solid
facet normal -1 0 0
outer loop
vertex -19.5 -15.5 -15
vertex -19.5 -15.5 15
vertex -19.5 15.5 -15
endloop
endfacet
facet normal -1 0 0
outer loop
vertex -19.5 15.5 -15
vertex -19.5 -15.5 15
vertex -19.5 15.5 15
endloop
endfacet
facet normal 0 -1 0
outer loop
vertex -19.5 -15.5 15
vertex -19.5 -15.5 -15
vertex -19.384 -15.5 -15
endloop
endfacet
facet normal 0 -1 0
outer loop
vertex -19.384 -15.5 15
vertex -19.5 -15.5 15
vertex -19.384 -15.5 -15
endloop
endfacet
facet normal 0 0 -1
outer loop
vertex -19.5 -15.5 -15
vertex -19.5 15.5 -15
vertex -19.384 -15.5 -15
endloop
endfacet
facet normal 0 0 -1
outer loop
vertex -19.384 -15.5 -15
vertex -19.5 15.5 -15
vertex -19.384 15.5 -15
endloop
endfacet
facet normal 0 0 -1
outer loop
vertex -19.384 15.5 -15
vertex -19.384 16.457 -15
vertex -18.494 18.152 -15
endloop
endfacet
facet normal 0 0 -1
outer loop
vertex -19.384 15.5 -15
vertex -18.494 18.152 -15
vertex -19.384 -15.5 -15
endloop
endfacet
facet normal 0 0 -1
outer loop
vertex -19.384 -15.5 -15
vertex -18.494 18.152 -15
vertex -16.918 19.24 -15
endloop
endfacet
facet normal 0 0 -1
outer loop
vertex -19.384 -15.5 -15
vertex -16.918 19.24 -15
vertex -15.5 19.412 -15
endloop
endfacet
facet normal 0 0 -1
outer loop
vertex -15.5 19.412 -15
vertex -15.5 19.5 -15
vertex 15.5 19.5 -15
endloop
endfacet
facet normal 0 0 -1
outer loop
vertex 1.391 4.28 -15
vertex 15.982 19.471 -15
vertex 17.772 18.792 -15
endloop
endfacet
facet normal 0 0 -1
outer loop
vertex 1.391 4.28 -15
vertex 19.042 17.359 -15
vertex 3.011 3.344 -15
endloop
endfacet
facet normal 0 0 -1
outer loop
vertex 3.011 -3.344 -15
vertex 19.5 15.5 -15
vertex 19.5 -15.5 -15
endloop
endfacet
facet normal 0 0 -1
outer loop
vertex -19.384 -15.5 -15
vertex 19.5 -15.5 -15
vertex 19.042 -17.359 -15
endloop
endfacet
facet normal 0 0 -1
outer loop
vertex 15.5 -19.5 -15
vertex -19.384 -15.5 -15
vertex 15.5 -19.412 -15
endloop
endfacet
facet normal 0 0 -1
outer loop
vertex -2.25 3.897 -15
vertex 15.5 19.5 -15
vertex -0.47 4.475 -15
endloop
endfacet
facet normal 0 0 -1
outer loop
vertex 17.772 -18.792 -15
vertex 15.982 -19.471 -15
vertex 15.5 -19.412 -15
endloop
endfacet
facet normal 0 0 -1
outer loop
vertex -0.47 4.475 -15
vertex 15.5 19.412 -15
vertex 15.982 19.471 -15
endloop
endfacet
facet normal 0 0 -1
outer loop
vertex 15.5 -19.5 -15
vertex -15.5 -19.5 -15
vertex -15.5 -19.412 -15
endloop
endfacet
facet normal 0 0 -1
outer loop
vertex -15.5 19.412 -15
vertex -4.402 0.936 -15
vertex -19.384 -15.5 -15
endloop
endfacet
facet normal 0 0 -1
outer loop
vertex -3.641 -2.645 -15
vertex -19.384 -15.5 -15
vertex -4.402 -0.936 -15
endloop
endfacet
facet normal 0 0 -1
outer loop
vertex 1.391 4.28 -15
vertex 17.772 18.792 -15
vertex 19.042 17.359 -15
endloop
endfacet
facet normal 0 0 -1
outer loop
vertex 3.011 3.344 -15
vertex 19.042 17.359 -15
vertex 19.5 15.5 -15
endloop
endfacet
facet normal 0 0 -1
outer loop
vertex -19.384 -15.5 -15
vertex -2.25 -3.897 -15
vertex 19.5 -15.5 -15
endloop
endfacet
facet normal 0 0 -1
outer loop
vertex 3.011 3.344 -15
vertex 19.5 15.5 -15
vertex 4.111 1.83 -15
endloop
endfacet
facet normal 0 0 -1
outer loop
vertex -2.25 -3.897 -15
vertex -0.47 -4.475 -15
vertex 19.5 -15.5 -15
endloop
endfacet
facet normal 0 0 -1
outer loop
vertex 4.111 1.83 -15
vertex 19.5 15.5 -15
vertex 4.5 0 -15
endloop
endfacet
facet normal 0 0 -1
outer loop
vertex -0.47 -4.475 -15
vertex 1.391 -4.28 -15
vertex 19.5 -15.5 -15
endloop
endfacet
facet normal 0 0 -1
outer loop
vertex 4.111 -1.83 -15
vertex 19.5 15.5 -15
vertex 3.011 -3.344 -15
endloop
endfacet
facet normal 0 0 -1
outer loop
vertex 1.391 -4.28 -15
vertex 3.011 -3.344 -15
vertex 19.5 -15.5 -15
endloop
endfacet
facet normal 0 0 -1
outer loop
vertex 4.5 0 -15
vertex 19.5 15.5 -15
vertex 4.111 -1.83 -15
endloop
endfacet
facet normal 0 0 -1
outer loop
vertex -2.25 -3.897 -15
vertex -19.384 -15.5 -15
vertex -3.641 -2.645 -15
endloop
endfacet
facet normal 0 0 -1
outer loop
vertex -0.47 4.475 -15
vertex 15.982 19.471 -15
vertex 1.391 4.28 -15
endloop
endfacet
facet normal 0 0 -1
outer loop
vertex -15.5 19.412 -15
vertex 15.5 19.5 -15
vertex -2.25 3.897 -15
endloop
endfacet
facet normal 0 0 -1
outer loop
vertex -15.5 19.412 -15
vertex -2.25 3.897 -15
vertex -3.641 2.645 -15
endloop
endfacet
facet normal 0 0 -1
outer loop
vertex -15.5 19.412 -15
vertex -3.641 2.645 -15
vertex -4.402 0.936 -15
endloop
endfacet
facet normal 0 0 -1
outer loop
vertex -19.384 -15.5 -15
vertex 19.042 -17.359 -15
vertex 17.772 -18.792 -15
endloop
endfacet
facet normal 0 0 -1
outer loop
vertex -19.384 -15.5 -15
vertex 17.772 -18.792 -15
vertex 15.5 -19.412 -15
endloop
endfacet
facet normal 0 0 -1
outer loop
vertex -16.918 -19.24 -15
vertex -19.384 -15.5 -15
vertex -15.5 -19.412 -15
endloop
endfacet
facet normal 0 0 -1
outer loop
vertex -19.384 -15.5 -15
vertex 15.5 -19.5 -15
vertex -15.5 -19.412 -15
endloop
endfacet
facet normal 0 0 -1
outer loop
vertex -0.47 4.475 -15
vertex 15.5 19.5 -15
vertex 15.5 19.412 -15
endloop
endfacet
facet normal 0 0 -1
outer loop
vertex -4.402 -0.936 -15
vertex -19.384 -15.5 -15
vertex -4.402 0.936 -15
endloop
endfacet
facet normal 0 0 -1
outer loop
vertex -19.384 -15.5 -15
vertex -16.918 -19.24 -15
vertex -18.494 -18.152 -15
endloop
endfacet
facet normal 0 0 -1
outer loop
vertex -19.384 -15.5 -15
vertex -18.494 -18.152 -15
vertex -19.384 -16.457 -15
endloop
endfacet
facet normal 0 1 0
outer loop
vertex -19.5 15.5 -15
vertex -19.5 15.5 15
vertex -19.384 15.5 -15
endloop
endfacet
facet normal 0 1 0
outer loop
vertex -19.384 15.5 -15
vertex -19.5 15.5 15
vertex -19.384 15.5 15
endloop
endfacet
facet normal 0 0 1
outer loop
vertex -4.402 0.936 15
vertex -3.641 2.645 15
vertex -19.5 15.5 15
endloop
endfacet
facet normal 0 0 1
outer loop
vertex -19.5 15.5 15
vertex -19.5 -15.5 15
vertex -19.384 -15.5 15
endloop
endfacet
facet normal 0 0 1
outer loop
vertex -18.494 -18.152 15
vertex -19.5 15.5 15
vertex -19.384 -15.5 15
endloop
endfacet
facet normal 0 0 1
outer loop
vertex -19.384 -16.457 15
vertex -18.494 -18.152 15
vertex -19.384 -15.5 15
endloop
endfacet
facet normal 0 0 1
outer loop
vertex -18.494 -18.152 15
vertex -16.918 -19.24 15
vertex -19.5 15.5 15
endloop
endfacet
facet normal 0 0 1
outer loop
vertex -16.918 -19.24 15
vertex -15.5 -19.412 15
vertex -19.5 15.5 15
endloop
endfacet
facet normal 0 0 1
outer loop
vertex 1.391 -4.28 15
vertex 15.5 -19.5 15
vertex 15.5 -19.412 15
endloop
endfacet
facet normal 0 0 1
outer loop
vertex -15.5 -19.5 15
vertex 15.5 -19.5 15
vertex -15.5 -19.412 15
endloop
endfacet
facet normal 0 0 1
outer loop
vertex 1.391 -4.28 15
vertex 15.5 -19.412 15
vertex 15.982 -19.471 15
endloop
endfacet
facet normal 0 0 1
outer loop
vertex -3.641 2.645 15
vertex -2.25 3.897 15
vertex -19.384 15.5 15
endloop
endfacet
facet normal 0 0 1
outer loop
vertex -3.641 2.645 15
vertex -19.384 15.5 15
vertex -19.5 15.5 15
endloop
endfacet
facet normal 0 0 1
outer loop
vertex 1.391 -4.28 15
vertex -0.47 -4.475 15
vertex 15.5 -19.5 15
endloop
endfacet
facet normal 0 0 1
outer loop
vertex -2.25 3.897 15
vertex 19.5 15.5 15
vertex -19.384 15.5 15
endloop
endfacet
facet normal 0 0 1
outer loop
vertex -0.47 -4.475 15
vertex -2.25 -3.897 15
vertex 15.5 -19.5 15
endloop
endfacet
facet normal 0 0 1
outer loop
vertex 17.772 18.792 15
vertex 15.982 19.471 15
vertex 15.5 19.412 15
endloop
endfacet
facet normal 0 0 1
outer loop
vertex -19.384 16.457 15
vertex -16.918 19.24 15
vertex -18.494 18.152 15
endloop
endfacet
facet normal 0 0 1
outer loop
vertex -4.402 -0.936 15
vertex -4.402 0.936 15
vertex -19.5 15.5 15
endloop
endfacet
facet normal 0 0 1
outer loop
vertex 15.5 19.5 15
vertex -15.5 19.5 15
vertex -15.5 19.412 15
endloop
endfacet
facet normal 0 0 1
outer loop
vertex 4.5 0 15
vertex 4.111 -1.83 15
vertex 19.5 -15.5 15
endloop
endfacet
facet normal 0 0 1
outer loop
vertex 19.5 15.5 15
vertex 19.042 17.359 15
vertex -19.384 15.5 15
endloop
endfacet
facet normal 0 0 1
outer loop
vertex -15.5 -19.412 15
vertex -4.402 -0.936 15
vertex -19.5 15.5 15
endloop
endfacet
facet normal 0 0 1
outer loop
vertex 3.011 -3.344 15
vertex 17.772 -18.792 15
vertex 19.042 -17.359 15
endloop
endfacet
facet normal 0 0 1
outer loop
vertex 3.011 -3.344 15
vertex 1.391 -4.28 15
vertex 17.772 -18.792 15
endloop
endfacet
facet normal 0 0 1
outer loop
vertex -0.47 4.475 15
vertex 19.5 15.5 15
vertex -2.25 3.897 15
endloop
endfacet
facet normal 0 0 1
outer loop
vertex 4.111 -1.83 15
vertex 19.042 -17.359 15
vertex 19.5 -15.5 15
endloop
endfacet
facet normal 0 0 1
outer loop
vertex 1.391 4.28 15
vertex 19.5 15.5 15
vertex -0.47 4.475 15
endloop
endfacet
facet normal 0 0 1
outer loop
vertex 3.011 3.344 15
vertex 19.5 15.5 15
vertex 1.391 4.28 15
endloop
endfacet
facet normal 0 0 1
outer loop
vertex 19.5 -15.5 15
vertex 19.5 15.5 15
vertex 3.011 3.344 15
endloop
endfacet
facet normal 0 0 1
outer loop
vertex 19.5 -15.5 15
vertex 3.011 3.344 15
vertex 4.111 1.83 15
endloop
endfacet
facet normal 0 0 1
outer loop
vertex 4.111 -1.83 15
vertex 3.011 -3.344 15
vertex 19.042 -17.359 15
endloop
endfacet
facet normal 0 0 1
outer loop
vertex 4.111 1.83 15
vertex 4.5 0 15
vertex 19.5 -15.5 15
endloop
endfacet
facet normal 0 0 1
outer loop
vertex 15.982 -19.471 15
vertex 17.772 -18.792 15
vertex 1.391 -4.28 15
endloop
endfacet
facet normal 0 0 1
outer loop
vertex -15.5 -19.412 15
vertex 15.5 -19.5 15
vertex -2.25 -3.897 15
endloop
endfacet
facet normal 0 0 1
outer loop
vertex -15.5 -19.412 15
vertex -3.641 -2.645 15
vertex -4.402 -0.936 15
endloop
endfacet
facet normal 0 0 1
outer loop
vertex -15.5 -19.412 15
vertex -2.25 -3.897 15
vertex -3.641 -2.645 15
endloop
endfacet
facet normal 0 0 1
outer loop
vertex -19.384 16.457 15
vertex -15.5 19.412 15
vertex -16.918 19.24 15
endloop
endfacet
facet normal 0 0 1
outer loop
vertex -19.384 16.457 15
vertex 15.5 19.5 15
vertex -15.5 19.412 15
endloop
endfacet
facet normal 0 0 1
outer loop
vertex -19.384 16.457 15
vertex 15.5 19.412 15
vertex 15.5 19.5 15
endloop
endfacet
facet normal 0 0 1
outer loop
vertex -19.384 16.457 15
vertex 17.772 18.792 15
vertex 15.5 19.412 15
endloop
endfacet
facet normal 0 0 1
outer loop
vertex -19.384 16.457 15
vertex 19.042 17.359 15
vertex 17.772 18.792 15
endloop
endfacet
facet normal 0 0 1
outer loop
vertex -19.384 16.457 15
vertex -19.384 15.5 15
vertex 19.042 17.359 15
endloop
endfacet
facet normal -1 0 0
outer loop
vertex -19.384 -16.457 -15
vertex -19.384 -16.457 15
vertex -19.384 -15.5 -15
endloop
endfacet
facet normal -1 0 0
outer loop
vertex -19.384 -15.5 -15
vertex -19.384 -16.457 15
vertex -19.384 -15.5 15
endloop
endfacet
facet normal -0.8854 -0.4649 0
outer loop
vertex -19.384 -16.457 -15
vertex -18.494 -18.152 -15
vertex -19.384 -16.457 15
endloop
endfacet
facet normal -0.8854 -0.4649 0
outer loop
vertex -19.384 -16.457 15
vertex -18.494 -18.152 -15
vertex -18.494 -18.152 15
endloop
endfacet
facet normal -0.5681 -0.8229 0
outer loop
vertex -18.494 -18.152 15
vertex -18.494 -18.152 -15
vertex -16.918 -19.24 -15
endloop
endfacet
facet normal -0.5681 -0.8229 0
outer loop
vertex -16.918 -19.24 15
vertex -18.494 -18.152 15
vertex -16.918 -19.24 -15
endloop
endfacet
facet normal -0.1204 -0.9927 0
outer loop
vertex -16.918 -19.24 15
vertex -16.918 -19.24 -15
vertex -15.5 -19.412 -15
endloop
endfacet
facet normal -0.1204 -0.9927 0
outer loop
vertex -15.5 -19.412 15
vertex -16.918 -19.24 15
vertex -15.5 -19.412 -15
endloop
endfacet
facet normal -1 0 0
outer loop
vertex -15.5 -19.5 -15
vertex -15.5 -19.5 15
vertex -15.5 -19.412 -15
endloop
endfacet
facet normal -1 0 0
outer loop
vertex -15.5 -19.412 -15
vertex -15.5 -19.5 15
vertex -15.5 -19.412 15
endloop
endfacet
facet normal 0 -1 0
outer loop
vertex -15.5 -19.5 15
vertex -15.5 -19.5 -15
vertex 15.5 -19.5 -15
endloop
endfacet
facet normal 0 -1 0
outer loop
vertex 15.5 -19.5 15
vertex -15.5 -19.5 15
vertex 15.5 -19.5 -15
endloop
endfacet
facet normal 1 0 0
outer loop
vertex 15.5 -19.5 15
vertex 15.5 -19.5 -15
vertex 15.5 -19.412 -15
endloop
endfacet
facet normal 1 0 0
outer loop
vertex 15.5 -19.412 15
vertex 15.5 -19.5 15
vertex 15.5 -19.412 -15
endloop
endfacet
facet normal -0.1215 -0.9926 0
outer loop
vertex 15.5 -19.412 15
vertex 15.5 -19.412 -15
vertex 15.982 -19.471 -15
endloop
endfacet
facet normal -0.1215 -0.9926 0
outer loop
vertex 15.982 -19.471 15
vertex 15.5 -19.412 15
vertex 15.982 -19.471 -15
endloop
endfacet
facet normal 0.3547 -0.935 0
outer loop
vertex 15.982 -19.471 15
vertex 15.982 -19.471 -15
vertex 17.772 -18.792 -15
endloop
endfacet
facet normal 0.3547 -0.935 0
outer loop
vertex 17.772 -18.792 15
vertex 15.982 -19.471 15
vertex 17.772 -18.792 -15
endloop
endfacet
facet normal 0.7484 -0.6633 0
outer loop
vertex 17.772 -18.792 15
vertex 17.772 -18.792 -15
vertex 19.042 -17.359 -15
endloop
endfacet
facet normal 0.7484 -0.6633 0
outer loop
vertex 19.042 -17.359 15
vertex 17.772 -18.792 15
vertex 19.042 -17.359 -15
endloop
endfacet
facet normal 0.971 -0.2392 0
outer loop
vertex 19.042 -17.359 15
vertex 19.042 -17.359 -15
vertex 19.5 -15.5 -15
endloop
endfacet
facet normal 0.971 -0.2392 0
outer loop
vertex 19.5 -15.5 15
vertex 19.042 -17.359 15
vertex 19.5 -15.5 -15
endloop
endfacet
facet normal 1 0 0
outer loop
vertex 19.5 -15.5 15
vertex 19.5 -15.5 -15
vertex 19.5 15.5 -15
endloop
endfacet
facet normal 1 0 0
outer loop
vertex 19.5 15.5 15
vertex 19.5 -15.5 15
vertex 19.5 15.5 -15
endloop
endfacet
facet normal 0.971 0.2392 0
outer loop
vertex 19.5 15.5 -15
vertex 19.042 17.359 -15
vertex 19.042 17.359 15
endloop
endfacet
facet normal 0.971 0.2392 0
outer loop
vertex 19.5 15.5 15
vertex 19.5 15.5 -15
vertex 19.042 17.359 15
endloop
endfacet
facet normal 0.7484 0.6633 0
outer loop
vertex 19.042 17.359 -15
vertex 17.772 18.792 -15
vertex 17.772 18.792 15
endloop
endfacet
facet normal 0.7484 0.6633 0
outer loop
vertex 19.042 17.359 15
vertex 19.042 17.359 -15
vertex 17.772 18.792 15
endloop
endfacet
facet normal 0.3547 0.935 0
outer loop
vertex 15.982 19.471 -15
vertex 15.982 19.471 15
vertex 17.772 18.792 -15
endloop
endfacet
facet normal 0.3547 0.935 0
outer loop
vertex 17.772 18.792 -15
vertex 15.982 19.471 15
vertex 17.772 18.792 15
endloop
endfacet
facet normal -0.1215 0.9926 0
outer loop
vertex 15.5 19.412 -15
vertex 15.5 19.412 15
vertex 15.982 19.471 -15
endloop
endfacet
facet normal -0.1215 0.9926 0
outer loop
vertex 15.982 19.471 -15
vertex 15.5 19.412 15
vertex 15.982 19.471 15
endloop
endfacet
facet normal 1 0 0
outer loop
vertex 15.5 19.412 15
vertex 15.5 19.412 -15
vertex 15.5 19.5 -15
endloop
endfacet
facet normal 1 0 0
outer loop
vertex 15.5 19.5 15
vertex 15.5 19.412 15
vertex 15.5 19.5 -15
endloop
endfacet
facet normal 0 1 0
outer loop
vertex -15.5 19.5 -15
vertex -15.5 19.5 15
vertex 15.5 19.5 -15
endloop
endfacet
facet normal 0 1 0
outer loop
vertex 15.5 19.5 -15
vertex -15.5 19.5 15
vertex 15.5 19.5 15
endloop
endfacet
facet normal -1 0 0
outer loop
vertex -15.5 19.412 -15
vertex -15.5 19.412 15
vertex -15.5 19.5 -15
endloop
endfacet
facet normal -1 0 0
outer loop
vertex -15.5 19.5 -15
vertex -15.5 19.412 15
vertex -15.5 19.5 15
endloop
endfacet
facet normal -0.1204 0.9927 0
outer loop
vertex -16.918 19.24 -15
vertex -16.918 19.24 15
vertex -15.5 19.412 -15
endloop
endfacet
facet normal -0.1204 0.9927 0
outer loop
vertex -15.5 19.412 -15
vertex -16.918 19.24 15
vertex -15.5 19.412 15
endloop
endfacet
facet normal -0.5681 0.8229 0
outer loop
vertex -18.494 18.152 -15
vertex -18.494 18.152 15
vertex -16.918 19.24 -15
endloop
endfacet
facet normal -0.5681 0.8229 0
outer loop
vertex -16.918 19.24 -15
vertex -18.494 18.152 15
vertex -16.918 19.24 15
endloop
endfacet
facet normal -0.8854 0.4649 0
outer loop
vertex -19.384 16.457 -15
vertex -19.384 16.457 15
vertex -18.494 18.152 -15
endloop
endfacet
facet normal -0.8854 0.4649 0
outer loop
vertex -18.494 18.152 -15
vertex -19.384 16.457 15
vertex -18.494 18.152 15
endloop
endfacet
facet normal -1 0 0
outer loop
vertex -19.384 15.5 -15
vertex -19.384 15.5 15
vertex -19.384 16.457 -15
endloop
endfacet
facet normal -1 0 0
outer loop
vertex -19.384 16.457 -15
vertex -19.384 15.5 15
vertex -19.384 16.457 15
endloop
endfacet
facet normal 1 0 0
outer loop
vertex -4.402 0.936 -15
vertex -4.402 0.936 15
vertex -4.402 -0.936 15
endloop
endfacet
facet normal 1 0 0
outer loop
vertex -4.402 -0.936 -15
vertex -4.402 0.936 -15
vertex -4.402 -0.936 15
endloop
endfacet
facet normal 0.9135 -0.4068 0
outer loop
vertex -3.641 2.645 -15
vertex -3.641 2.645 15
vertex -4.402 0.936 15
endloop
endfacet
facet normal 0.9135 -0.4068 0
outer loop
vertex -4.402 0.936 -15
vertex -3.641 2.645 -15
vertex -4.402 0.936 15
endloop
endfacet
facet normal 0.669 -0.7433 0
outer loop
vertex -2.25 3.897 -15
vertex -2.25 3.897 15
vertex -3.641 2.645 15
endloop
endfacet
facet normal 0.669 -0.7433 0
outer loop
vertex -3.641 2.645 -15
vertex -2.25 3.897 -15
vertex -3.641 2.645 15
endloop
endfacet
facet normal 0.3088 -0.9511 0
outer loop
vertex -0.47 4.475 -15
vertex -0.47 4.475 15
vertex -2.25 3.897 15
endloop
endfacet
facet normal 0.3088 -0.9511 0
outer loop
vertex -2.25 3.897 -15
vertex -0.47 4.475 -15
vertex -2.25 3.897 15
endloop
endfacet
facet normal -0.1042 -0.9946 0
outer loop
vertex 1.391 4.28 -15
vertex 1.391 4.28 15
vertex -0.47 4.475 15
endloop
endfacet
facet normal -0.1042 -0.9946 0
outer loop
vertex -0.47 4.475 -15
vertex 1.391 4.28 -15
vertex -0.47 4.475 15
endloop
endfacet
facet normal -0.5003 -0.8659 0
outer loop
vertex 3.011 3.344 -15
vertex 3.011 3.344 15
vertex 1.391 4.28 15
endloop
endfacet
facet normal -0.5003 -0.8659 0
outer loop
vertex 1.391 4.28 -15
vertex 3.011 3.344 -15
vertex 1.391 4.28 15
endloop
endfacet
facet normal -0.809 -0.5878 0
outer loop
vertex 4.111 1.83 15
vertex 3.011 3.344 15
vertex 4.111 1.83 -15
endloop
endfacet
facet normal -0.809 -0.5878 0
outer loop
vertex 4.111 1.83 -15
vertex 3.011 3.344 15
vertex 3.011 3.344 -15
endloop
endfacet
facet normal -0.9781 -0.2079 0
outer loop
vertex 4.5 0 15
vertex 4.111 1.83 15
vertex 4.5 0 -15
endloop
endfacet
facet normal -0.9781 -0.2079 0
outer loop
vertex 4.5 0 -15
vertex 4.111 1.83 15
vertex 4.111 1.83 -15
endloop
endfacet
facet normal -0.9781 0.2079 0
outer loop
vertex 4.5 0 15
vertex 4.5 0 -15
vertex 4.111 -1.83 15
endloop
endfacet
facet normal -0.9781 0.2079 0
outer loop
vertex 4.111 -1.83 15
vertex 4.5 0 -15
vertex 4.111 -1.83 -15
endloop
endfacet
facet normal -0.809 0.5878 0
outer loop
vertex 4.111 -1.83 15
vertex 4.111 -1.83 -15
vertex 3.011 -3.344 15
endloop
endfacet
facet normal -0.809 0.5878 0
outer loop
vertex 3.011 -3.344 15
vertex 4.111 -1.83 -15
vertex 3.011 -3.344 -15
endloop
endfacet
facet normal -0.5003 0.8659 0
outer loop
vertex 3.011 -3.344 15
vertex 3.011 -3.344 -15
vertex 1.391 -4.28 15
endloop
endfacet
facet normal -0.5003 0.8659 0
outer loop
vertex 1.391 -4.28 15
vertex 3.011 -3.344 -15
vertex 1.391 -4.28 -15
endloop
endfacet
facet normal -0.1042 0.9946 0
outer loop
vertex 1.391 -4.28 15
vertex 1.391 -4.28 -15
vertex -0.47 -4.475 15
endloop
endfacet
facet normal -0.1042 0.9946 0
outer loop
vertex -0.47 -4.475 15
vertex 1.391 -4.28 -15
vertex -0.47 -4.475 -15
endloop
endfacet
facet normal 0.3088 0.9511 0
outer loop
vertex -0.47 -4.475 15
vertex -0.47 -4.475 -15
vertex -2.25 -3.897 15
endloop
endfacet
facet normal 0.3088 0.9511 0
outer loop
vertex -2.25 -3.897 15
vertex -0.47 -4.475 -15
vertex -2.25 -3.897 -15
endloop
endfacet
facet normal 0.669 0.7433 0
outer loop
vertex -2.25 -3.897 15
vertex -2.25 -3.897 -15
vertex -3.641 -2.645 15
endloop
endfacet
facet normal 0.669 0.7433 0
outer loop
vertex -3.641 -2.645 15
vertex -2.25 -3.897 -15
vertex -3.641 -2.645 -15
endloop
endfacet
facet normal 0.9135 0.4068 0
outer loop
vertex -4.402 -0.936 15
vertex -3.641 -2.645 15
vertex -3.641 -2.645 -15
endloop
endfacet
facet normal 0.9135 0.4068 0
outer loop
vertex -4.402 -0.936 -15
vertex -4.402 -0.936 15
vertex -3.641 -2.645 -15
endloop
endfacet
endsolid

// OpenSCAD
use <MCAD/boxes.scad>


difference() {
	union() {
		roundedBox([39, 39, 30], 4, true);  
	}
	union() {
		cylinder(h = 100, r=9/2, center=true);
	}
}
